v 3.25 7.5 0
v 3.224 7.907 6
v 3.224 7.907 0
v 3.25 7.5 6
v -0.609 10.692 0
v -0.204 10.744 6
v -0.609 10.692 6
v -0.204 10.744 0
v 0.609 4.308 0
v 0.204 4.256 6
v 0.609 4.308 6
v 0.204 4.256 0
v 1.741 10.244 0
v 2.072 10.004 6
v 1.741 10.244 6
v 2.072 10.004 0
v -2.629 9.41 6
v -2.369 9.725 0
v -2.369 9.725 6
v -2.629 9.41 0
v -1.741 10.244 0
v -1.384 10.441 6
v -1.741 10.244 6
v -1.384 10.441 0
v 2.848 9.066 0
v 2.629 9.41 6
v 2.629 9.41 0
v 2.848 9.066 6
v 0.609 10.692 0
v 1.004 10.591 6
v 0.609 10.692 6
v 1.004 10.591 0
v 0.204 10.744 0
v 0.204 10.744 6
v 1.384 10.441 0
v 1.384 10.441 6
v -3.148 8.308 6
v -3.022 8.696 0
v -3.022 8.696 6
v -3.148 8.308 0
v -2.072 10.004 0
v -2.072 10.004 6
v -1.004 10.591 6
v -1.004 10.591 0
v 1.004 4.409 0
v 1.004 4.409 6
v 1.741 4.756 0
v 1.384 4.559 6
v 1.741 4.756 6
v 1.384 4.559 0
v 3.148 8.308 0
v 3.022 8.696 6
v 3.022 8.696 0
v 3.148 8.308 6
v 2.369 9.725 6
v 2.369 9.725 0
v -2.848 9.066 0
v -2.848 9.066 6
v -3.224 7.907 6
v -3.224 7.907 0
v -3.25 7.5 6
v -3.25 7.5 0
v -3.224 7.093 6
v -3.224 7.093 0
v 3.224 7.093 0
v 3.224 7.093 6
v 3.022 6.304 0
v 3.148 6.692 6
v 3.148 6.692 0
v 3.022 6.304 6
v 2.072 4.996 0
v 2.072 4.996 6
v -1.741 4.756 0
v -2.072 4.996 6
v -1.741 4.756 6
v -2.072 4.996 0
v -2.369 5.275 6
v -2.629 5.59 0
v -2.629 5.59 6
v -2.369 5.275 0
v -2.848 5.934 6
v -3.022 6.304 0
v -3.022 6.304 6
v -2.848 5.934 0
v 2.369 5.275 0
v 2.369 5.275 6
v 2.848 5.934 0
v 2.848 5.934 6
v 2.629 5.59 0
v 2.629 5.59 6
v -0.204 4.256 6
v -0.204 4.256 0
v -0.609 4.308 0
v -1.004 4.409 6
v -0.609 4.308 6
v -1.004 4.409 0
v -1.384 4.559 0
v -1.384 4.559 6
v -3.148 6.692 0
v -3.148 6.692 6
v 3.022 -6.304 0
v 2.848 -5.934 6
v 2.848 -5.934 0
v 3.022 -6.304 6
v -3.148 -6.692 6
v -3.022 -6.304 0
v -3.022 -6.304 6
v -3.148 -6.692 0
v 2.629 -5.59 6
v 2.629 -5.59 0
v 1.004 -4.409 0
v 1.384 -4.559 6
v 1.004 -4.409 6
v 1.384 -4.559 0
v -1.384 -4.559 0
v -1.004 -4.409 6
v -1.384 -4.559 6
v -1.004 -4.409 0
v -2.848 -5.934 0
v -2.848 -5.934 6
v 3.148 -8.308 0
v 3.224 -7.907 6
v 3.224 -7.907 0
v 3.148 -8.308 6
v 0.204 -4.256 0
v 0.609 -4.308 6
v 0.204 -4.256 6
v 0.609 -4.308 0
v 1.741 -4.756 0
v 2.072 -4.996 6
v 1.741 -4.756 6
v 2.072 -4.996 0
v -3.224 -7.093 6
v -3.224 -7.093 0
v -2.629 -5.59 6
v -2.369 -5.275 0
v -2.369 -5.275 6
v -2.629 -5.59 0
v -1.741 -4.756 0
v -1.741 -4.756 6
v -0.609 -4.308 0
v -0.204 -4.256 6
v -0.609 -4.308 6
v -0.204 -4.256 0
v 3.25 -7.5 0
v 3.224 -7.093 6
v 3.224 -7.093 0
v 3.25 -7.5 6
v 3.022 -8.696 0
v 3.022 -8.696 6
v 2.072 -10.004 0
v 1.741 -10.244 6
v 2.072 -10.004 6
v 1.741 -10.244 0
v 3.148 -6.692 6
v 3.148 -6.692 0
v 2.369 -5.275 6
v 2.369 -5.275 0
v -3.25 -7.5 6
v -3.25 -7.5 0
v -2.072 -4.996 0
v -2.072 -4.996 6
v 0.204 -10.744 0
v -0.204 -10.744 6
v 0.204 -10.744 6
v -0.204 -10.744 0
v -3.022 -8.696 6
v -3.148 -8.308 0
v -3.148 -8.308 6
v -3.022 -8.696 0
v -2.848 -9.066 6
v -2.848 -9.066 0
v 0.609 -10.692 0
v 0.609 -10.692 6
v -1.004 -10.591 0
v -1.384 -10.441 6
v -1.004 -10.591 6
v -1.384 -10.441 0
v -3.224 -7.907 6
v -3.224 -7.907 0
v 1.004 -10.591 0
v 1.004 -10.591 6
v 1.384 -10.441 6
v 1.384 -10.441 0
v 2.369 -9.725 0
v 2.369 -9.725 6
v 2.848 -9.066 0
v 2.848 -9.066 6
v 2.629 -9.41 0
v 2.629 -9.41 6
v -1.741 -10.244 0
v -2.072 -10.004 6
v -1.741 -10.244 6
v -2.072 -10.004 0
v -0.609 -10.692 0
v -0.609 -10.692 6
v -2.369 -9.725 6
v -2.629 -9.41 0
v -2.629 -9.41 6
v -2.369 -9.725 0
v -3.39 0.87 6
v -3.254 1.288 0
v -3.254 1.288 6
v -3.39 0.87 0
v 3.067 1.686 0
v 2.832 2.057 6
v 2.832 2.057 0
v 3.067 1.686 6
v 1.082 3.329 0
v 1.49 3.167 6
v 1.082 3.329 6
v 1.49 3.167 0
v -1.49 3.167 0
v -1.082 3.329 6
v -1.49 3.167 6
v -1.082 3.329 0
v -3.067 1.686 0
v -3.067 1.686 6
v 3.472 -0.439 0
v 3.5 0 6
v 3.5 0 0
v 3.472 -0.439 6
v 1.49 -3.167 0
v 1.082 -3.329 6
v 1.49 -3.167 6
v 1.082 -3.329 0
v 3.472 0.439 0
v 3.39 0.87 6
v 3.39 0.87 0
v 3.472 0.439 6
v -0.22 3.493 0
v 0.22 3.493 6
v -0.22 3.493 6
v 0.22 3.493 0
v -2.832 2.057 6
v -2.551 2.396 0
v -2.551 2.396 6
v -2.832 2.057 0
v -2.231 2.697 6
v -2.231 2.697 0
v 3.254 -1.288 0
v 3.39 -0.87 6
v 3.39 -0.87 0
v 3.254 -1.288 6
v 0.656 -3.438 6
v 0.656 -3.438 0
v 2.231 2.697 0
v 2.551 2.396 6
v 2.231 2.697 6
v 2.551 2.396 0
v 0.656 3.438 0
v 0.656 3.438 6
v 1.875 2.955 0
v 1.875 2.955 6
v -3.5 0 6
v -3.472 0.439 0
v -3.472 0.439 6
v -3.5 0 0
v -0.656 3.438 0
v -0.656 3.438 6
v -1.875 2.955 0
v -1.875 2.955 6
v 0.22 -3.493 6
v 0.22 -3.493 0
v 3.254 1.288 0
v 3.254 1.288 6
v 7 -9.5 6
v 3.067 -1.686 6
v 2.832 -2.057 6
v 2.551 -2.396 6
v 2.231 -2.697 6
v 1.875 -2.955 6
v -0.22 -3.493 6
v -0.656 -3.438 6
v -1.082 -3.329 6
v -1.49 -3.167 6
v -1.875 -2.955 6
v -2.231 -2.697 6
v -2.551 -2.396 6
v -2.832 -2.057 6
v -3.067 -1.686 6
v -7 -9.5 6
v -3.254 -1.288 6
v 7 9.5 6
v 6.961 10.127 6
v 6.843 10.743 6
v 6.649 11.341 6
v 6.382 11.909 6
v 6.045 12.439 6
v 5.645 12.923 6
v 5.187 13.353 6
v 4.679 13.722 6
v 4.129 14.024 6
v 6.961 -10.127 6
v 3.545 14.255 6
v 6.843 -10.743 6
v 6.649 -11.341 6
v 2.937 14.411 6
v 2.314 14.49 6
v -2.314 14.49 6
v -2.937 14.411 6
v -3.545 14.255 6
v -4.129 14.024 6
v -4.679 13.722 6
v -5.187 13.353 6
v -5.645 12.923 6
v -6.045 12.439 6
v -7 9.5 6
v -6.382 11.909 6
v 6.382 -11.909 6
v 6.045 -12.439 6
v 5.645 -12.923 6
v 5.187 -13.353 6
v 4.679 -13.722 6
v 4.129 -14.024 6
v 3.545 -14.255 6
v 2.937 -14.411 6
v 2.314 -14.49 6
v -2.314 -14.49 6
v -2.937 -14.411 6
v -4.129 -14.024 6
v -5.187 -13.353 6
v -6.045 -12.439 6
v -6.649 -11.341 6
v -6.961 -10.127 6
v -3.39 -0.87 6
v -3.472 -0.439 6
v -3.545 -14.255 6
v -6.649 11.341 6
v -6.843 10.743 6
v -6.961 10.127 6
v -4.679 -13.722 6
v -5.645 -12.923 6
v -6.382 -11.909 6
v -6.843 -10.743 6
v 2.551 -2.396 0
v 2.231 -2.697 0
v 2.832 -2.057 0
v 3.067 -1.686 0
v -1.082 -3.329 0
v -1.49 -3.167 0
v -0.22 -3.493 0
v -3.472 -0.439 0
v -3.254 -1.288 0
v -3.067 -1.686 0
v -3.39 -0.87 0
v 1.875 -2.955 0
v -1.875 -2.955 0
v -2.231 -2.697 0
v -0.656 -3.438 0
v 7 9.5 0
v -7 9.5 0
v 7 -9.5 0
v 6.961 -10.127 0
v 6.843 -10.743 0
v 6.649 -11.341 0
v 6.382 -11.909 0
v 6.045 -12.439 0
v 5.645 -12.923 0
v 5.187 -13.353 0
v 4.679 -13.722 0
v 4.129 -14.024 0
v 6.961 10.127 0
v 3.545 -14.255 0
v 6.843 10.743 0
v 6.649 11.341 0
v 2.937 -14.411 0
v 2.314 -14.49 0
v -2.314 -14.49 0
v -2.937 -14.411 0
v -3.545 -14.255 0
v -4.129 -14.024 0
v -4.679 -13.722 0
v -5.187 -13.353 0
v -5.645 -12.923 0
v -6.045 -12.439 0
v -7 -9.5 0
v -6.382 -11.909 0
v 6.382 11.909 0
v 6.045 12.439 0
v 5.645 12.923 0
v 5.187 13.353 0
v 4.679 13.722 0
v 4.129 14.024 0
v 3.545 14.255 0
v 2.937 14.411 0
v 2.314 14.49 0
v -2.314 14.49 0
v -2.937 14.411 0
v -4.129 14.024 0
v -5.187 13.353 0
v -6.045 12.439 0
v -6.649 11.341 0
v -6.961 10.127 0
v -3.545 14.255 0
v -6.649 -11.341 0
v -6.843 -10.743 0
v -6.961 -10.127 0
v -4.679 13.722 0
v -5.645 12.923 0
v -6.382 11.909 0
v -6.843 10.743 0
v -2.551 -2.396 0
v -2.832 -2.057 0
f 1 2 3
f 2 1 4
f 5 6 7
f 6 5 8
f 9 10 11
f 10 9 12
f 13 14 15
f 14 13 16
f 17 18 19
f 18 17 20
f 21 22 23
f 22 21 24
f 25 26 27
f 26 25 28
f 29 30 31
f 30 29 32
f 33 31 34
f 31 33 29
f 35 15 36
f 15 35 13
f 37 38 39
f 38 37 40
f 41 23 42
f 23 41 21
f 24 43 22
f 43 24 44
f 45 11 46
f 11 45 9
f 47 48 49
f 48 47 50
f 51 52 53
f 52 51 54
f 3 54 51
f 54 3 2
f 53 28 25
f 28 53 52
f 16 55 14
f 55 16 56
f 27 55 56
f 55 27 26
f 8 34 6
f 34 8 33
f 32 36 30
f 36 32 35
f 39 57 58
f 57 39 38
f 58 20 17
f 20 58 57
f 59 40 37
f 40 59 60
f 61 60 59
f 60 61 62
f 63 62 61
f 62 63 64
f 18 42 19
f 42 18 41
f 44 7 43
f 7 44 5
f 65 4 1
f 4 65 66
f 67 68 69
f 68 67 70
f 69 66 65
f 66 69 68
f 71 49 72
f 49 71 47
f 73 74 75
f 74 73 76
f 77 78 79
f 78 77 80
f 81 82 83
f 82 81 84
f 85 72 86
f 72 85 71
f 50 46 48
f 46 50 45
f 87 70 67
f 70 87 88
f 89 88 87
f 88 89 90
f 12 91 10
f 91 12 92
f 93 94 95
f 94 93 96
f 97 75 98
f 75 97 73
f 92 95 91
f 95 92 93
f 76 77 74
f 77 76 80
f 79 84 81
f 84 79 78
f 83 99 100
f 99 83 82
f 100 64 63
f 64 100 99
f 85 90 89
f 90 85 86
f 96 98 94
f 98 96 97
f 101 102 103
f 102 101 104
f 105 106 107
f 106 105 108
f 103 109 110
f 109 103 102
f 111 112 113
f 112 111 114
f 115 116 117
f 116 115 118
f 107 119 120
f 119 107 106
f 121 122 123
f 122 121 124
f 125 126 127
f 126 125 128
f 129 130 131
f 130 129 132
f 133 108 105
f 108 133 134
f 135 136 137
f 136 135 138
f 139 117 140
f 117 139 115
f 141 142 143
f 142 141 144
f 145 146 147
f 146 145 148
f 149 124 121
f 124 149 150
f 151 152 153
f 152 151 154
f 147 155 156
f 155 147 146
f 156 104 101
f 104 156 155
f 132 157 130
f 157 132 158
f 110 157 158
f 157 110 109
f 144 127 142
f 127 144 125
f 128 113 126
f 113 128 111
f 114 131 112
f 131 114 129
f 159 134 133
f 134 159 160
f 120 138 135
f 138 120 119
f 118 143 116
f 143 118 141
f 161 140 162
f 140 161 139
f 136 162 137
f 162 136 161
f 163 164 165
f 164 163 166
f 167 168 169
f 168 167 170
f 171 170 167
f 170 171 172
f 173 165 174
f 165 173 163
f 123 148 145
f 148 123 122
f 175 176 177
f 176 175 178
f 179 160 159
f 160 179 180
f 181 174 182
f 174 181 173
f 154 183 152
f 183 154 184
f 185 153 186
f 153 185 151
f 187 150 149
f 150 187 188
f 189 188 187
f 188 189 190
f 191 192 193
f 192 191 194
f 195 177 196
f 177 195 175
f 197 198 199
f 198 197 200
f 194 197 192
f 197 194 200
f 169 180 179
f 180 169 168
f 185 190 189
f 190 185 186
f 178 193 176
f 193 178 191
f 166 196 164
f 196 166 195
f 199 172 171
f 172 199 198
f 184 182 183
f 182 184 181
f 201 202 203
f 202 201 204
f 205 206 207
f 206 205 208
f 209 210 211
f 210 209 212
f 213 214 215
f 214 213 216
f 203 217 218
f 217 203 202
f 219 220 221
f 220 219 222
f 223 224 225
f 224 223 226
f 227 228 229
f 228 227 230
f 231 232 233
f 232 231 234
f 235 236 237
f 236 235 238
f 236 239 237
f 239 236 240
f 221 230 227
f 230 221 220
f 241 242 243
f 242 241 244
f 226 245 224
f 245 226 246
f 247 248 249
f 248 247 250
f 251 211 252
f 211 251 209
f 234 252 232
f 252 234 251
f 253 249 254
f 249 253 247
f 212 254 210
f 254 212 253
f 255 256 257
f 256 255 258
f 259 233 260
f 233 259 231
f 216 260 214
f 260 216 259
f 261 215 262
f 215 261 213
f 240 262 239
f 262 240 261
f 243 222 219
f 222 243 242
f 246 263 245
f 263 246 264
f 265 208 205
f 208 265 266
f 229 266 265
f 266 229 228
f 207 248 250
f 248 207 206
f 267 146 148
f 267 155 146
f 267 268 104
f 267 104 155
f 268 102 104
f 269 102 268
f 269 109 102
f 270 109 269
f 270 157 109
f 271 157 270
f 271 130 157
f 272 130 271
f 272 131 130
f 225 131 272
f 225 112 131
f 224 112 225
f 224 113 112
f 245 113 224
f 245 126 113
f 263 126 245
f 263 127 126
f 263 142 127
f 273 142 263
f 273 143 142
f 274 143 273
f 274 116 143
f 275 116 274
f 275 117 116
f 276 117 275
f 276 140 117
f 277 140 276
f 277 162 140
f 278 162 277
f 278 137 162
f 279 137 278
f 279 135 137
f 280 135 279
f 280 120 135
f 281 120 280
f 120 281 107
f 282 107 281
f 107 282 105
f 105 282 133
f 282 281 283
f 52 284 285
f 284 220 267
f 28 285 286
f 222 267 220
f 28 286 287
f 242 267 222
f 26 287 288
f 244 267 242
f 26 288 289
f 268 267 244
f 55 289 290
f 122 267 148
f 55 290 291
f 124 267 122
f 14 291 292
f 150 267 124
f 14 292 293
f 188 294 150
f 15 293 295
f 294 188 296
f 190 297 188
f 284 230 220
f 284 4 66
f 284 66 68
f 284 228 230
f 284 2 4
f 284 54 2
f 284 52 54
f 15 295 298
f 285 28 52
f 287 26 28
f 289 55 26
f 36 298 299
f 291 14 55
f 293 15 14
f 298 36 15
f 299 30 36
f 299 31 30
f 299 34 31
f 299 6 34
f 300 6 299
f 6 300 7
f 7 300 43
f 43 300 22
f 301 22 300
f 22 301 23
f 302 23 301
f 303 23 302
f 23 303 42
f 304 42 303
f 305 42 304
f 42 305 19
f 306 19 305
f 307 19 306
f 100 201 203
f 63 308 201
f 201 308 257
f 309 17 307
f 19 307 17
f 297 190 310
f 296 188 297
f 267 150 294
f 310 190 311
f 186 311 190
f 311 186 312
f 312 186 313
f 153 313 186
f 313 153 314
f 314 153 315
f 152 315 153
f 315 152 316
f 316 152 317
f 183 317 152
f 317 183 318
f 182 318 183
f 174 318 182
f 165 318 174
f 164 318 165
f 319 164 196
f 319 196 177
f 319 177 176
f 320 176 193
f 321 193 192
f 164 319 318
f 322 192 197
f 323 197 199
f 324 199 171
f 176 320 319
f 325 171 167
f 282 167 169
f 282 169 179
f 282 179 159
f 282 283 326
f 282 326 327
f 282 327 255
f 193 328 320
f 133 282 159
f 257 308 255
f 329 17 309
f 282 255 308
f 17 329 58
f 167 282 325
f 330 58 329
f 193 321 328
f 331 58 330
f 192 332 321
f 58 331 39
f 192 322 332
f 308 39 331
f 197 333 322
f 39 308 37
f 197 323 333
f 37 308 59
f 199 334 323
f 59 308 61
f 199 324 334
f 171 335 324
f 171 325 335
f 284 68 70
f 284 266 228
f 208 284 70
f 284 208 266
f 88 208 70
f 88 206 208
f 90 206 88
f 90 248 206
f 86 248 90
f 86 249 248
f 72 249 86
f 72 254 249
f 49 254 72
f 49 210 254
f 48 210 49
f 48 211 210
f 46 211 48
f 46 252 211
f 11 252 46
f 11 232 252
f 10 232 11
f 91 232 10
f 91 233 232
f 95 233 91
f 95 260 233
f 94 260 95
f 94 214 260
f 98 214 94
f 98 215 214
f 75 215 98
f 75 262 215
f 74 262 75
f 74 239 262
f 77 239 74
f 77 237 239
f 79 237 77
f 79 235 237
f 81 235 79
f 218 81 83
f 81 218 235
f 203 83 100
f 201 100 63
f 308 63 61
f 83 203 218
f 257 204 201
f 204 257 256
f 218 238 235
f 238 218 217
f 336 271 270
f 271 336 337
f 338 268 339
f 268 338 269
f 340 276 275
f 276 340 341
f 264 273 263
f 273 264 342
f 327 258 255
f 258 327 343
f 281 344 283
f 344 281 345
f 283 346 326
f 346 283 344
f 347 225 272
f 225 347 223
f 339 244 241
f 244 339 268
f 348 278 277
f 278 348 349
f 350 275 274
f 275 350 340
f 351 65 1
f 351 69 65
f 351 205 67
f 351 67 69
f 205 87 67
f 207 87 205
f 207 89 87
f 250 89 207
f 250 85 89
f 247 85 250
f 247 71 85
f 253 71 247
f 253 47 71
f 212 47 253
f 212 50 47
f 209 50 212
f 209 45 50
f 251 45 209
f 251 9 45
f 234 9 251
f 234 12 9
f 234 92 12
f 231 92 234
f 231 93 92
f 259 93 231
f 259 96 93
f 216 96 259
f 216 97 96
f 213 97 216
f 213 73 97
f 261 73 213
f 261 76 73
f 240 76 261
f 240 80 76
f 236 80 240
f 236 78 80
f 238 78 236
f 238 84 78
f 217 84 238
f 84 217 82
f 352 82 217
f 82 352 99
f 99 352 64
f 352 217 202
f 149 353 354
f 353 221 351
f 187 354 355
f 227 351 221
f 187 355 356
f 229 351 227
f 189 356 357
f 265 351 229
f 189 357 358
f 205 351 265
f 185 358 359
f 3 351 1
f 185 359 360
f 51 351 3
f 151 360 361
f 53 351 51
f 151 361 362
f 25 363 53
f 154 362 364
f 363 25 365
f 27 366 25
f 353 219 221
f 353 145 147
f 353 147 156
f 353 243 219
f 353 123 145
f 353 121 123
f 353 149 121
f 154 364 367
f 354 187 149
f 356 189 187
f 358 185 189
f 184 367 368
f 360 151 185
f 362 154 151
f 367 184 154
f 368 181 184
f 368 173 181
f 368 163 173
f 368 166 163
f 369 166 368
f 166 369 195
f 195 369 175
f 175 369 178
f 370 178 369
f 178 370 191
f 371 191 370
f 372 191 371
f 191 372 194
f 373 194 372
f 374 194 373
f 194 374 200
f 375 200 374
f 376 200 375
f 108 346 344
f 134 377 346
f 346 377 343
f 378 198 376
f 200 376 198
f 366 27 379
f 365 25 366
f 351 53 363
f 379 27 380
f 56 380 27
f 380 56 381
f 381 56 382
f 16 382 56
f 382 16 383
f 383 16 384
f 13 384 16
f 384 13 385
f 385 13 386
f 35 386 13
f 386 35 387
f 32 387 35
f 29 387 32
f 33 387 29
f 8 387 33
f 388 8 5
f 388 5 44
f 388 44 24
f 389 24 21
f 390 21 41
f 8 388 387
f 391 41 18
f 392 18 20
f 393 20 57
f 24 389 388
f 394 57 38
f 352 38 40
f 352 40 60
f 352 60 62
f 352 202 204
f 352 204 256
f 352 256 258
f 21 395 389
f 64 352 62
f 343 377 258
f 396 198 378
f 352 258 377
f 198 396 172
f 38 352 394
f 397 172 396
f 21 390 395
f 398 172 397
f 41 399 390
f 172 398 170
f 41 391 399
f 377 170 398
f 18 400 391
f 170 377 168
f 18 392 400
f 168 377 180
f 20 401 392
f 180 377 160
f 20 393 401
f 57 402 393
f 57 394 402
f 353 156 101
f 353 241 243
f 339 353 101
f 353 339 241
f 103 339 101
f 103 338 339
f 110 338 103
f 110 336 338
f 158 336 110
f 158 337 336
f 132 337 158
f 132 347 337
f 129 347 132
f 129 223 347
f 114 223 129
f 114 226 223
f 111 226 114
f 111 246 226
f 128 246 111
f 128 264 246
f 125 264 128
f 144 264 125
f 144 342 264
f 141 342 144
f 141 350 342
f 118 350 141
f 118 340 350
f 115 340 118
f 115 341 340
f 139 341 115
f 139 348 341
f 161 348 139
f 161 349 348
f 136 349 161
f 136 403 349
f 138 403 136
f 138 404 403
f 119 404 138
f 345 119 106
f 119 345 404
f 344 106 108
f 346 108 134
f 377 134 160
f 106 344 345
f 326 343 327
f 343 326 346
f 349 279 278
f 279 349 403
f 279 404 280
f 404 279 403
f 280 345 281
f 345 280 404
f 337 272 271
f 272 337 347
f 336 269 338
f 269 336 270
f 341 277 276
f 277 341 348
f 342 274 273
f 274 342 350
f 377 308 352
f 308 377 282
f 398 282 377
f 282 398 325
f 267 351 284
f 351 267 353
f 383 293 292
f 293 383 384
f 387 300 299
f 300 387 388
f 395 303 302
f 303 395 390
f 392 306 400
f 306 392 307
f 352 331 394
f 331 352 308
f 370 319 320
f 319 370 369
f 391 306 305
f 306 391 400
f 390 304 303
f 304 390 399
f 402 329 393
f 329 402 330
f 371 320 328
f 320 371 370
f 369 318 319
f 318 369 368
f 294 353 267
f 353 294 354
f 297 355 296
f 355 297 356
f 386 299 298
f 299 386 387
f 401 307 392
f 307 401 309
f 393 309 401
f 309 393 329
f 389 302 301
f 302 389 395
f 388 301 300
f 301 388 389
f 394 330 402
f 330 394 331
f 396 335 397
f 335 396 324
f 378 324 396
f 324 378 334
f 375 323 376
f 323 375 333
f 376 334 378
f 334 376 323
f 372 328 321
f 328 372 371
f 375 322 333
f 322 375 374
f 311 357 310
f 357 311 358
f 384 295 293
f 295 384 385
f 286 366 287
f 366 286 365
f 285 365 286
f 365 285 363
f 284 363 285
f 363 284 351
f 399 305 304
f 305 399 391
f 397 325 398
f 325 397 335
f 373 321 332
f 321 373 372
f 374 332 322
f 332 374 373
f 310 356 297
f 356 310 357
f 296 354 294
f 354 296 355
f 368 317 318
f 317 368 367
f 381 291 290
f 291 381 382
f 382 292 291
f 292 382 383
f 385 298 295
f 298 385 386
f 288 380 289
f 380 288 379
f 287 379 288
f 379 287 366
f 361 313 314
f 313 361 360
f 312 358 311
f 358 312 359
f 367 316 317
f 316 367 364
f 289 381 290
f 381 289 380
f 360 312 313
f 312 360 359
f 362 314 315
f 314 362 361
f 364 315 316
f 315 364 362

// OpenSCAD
$fn = 50;


difference() {
	union() {
		hull() {
			translate(v = [-2.0000000000, 9.5000000000, 0]) {
				cylinder(h = 6, r = 5);
			}
			translate(v = [2.0000000000, 9.5000000000, 0]) {
				cylinder(h = 6, r = 5);
			}
			translate(v = [-2.0000000000, -9.5000000000, 0]) {
				cylinder(h = 6, r = 5);
			}
			translate(v = [2.0000000000, -9.5000000000, 0]) {
				cylinder(h = 6, r = 5);
			}
		}
	}
	union() {
		#translate(v = [0.0000000000, 7.5000000000, 0]) {
			cylinder(h = 6, r = 3.2500000000);
		}
		#translate(v = [0.0000000000, -7.5000000000, 0]) {
			cylinder(h = 6, r = 3.2500000000);
		}
		#translate(v = [0.0000000000, -7.5000000000, -100.0000000000]) {
			cylinder(h = 200, r = 3.2500000000);
		}
		#translate(v = [0.0000000000, -7.5000000000, -100.0000000000]) {
			cylinder(h = 200, r = 3.2500000000);
		}
		#translate(v = [0.0000000000, 7.5000000000, -100.0000000000]) {
			cylinder(h = 200, r = 3.2500000000);
		}
		#translate(v = [0.0000000000, 7.5000000000, -100.0000000000]) {
			cylinder(h = 200, r = 3.2500000000);
		}
		#translate(v = [0.0000000000, 7.5000000000, 0]) {
			cylinder(h = 6, r = 1.8000000000);
		}
		#translate(v = [0.0000000000, -7.5000000000, 0]) {
			cylinder(h = 6, r = 1.8000000000);
		}
		#translate(v = [0.0000000000, 7.5000000000, 0]) {
			cylinder(h = 6, r = 1.8000000000);
		}
		#translate(v = [0.0000000000, -7.5000000000, 0]) {
			cylinder(h = 6, r = 1.8000000000);
		}
		#translate(v = [0.0000000000, 7.5000000000, 0]) {
			cylinder(h = 6, r = 1.8000000000);
		}
		#translate(v = [0.0000000000, -7.5000000000, 0]) {
			cylinder(h = 6, r = 1.8000000000);
		}
		#cylinder(h = 6, r = 3.5000000000);
	}
}
